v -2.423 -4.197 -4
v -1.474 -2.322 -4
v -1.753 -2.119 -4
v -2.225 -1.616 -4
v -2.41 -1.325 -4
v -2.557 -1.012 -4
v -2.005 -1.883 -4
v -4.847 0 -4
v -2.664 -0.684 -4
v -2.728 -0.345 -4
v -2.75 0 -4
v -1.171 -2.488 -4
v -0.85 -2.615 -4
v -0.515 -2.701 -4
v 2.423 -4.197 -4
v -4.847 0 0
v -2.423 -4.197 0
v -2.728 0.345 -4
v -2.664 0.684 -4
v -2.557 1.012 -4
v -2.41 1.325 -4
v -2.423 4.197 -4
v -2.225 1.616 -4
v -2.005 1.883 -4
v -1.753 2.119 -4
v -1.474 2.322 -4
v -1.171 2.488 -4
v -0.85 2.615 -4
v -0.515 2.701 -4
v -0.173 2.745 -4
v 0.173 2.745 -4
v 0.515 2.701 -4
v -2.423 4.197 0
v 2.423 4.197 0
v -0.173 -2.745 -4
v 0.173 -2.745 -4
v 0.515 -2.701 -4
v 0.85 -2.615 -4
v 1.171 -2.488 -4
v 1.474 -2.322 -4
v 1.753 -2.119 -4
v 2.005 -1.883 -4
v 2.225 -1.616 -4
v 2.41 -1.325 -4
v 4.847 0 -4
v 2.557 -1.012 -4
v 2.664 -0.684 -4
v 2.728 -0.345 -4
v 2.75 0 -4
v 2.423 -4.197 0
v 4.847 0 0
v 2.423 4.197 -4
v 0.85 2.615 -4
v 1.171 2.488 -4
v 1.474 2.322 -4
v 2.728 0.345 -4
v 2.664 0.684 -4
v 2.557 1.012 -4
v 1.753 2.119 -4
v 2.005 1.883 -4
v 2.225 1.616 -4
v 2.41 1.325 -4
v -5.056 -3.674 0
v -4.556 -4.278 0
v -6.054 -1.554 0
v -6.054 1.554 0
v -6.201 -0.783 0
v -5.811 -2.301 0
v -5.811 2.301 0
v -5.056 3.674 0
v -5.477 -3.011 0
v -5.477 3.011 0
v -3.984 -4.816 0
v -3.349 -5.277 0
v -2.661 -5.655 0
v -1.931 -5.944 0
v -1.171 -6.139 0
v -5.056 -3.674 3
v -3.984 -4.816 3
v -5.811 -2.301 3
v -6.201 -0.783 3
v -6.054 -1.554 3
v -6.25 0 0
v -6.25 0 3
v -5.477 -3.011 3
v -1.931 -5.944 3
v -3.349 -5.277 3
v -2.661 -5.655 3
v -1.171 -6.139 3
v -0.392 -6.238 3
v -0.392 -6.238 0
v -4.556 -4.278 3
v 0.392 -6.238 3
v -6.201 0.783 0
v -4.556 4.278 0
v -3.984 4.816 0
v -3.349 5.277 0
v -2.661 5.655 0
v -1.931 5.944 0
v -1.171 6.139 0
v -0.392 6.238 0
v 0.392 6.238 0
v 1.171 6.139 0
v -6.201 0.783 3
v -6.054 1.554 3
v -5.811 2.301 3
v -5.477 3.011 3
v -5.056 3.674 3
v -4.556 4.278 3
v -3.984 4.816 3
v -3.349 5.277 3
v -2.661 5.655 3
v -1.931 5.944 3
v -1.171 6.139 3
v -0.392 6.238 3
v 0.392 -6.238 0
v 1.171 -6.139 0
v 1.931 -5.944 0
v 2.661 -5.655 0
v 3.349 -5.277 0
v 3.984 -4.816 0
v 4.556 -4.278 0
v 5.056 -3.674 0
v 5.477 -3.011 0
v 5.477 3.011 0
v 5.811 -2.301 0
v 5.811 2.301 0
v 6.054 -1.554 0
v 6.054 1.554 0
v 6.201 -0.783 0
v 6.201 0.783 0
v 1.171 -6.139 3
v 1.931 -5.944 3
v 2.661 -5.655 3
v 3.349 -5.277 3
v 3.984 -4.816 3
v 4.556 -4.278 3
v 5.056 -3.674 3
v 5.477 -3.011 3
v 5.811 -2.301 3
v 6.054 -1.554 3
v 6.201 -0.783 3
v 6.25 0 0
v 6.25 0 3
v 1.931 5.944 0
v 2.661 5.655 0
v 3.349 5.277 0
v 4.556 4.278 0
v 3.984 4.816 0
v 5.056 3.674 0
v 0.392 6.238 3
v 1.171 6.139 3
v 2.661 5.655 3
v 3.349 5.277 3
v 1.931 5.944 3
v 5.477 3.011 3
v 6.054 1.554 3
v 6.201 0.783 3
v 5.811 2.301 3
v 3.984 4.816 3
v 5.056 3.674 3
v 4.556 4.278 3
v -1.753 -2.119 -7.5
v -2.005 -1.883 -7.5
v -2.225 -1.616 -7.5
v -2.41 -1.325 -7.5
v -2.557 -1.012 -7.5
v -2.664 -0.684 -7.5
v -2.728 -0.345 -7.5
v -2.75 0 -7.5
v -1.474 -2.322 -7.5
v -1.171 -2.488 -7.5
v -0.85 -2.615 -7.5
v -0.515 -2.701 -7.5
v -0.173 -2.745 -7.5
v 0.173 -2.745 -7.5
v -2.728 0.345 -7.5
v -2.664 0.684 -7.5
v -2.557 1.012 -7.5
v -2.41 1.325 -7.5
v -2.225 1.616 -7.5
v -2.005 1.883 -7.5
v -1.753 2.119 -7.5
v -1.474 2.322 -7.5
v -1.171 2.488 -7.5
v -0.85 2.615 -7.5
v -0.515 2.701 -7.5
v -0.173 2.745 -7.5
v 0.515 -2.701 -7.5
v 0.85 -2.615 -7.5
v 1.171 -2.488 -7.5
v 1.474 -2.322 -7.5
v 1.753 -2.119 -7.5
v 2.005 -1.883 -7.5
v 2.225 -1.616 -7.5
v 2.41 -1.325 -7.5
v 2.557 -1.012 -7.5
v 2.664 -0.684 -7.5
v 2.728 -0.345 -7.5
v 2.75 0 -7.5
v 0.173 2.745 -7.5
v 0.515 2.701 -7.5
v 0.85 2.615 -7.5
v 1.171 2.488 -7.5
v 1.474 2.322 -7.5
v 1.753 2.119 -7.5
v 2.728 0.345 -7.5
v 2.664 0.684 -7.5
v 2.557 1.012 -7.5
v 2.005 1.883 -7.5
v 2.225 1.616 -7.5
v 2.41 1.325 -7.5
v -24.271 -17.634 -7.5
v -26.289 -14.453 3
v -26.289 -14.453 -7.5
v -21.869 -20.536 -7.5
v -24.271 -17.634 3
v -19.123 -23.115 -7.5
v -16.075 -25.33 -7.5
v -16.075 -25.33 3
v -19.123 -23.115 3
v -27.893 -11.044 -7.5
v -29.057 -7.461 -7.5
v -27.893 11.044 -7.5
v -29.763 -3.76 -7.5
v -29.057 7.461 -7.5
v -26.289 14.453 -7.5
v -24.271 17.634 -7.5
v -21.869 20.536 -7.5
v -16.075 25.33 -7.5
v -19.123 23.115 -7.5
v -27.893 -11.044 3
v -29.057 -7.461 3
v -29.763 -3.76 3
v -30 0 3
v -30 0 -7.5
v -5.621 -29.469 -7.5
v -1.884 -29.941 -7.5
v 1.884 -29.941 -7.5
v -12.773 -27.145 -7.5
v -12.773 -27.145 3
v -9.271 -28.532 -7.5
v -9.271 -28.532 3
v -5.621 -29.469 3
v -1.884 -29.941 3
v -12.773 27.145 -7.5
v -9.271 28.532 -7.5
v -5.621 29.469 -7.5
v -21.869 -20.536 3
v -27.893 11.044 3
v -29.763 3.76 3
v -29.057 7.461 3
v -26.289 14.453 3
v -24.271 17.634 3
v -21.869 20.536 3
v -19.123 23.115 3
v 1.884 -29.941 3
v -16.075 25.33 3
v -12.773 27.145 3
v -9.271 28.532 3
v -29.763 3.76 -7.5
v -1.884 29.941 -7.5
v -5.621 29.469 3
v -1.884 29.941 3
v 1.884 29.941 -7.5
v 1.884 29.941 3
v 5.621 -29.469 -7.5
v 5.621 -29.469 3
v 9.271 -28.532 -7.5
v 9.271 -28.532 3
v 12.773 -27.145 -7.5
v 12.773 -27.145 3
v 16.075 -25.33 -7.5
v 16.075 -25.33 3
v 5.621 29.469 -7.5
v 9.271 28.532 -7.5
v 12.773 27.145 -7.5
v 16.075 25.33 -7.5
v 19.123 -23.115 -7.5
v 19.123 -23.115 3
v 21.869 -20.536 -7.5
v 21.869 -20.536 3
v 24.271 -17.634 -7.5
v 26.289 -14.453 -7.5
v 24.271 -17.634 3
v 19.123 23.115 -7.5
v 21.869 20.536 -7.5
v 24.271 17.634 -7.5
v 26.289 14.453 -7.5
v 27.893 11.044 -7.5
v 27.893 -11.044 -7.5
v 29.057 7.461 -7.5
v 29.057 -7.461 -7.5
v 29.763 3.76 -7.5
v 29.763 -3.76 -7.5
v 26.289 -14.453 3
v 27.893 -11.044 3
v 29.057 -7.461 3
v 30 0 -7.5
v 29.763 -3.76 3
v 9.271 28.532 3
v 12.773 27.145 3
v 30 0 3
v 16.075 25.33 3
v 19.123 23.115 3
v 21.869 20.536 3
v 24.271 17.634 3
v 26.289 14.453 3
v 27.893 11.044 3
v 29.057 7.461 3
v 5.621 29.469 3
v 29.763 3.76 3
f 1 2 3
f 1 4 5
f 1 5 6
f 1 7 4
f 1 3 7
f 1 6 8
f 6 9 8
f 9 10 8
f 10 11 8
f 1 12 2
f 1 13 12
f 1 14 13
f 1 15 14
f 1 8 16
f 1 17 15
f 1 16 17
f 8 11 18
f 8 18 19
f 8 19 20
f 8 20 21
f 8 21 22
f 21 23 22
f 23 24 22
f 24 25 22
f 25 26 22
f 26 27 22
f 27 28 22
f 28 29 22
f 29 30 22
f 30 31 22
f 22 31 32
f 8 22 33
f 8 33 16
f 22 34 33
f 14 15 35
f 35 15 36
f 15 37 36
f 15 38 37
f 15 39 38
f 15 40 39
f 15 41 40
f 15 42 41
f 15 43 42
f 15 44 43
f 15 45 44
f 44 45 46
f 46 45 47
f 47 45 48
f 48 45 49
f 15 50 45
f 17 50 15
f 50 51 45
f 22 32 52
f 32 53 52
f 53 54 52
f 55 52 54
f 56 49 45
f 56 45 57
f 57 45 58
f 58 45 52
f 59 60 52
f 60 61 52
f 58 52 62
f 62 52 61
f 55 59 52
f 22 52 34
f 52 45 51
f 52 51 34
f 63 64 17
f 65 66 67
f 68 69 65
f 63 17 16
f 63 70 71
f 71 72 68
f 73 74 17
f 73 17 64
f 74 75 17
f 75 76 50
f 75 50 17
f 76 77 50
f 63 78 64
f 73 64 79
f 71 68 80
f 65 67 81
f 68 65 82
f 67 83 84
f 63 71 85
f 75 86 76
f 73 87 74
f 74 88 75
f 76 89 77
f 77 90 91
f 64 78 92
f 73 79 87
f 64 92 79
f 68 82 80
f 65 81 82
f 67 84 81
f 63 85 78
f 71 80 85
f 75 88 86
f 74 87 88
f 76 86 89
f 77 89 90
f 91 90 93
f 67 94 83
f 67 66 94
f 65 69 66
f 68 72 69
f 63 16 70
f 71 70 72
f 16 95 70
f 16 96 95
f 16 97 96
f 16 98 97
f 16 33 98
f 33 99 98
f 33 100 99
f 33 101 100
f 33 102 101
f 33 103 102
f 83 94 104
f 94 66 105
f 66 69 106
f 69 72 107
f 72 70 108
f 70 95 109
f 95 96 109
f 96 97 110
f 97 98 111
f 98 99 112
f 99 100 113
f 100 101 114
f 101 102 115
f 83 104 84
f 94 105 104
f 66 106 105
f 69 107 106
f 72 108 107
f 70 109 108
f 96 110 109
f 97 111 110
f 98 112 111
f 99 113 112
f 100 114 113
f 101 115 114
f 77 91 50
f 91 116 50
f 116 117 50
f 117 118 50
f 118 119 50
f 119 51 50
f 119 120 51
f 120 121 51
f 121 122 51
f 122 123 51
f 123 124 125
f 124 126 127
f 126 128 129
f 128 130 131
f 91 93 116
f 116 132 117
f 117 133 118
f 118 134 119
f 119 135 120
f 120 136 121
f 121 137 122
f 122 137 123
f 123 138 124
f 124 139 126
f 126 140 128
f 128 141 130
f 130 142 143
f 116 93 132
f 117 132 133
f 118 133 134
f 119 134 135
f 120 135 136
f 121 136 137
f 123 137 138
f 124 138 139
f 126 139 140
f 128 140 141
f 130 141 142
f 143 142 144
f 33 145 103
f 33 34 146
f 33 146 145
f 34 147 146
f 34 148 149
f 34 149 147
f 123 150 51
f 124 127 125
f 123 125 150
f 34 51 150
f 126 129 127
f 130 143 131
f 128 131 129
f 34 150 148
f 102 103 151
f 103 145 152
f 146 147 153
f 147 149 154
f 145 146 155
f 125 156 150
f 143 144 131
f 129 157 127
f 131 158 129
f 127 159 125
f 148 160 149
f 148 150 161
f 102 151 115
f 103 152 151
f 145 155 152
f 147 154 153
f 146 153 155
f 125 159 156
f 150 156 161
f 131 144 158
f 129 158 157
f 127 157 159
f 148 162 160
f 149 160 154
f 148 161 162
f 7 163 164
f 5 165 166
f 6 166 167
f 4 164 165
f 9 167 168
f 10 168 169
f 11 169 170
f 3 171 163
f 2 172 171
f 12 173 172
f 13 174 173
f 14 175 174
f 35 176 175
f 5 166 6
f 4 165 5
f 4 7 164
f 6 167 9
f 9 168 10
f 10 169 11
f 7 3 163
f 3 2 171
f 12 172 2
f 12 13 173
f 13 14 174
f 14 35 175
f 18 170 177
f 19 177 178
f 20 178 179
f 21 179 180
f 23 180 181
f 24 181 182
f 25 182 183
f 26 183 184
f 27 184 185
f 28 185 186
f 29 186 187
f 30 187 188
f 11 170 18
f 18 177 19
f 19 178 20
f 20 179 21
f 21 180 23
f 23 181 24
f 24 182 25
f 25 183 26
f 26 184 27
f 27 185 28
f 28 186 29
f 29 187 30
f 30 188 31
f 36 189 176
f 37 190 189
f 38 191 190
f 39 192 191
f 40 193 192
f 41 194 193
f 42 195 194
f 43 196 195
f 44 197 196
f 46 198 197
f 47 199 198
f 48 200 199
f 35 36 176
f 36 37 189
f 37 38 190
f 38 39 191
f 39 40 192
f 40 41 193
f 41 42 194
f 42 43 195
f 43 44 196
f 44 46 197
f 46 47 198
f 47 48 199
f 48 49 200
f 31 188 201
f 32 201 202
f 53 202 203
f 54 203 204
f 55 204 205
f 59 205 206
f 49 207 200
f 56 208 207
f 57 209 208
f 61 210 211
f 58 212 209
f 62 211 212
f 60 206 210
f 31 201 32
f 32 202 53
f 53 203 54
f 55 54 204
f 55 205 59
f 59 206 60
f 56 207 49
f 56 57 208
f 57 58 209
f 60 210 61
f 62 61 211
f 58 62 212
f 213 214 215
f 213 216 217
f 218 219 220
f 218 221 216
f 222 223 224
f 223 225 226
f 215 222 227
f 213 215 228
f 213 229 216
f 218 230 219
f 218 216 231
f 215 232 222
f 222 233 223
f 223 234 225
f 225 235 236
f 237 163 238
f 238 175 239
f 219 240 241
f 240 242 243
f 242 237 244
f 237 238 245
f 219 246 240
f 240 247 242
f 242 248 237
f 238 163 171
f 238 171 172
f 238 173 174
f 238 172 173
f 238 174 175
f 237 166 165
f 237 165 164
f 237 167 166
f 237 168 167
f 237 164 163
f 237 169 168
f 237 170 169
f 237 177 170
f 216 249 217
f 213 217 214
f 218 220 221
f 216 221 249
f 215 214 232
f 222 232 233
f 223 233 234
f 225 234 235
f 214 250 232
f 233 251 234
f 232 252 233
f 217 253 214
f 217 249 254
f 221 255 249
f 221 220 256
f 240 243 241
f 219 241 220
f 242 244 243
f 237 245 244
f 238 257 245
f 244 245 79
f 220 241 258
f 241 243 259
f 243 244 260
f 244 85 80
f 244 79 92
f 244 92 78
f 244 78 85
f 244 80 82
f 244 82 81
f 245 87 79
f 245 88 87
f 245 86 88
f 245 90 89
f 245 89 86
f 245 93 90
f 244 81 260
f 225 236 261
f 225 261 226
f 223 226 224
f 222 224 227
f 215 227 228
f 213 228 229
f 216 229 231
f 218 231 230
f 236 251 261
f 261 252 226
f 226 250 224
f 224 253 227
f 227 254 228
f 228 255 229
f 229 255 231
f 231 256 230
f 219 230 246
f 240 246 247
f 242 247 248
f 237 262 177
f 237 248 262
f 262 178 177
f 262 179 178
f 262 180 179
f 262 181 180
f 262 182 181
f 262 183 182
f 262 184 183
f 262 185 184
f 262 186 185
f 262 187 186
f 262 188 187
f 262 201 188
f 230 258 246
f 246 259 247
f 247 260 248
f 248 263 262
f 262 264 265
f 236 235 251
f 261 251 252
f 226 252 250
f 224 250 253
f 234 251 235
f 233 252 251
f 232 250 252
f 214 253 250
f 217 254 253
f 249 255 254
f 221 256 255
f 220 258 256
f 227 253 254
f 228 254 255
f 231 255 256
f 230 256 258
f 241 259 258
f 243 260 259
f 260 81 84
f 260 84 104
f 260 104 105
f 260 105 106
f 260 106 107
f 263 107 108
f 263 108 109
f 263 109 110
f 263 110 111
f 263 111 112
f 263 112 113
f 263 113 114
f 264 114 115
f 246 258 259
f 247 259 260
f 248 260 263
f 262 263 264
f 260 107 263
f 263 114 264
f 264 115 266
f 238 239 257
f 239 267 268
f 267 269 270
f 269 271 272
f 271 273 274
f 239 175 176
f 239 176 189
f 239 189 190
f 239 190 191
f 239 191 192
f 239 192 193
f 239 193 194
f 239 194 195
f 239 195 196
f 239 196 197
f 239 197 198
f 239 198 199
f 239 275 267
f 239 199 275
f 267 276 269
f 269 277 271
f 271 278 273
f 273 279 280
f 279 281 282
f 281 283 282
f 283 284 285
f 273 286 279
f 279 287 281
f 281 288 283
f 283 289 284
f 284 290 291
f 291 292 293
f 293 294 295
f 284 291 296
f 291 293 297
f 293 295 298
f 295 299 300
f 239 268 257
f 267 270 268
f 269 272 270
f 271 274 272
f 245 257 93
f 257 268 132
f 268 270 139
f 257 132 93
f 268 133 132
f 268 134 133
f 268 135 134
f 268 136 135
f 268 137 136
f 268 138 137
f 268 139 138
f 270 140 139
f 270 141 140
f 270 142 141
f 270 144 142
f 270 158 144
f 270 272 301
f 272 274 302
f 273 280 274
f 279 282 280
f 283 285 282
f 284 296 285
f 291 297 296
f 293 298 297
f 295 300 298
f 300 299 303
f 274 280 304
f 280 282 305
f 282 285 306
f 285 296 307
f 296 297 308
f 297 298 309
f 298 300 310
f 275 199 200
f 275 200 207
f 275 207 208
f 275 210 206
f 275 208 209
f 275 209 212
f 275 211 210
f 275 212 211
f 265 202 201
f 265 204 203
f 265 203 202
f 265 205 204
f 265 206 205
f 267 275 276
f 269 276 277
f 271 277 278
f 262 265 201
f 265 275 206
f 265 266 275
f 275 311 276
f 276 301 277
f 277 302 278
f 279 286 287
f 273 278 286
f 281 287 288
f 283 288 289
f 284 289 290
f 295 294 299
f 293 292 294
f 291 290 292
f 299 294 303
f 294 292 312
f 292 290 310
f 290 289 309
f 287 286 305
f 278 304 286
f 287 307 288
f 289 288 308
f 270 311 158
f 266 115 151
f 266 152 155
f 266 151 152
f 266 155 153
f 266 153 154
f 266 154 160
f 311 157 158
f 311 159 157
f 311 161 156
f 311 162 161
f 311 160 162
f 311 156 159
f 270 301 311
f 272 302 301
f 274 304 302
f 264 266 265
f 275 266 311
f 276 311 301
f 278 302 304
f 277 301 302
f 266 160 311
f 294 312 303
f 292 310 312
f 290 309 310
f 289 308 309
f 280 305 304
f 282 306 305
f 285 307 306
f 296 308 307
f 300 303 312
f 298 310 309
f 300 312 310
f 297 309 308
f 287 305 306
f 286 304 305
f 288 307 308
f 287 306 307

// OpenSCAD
$fn = 50;


difference() {
	union() {
		translate(v = [0, 0, -7.5000000000]) {
			cylinder(h = 10.5000000000, r = 30.0000000000);
		}
	}
	union() {
		translate(v = [0, 0, 0]) {
			rotate(a = [0, 0, 0]) {
				difference() {
					union() {
						translate(v = [0, 0, -4]) {
							linear_extrude(height = 4) {
								polygon(points = [[4.8468000000, 0.0000000000], [2.4234000000, 4.1974519271], [-2.4234000000, 4.1974519271], [-4.8468000000, 0.0000000000], [-2.4234000000, -4.1974519271], [2.4234000000, -4.1974519271]]);
							}
						}
					}
					union();
				}
			}
		}
		#cylinder(h = 3, r = 6.2500000000);
		#translate(v = [0, 0, -100.0000000000]) {
			cylinder(h = 200, r = 2.7500000000);
		}
	}
}
